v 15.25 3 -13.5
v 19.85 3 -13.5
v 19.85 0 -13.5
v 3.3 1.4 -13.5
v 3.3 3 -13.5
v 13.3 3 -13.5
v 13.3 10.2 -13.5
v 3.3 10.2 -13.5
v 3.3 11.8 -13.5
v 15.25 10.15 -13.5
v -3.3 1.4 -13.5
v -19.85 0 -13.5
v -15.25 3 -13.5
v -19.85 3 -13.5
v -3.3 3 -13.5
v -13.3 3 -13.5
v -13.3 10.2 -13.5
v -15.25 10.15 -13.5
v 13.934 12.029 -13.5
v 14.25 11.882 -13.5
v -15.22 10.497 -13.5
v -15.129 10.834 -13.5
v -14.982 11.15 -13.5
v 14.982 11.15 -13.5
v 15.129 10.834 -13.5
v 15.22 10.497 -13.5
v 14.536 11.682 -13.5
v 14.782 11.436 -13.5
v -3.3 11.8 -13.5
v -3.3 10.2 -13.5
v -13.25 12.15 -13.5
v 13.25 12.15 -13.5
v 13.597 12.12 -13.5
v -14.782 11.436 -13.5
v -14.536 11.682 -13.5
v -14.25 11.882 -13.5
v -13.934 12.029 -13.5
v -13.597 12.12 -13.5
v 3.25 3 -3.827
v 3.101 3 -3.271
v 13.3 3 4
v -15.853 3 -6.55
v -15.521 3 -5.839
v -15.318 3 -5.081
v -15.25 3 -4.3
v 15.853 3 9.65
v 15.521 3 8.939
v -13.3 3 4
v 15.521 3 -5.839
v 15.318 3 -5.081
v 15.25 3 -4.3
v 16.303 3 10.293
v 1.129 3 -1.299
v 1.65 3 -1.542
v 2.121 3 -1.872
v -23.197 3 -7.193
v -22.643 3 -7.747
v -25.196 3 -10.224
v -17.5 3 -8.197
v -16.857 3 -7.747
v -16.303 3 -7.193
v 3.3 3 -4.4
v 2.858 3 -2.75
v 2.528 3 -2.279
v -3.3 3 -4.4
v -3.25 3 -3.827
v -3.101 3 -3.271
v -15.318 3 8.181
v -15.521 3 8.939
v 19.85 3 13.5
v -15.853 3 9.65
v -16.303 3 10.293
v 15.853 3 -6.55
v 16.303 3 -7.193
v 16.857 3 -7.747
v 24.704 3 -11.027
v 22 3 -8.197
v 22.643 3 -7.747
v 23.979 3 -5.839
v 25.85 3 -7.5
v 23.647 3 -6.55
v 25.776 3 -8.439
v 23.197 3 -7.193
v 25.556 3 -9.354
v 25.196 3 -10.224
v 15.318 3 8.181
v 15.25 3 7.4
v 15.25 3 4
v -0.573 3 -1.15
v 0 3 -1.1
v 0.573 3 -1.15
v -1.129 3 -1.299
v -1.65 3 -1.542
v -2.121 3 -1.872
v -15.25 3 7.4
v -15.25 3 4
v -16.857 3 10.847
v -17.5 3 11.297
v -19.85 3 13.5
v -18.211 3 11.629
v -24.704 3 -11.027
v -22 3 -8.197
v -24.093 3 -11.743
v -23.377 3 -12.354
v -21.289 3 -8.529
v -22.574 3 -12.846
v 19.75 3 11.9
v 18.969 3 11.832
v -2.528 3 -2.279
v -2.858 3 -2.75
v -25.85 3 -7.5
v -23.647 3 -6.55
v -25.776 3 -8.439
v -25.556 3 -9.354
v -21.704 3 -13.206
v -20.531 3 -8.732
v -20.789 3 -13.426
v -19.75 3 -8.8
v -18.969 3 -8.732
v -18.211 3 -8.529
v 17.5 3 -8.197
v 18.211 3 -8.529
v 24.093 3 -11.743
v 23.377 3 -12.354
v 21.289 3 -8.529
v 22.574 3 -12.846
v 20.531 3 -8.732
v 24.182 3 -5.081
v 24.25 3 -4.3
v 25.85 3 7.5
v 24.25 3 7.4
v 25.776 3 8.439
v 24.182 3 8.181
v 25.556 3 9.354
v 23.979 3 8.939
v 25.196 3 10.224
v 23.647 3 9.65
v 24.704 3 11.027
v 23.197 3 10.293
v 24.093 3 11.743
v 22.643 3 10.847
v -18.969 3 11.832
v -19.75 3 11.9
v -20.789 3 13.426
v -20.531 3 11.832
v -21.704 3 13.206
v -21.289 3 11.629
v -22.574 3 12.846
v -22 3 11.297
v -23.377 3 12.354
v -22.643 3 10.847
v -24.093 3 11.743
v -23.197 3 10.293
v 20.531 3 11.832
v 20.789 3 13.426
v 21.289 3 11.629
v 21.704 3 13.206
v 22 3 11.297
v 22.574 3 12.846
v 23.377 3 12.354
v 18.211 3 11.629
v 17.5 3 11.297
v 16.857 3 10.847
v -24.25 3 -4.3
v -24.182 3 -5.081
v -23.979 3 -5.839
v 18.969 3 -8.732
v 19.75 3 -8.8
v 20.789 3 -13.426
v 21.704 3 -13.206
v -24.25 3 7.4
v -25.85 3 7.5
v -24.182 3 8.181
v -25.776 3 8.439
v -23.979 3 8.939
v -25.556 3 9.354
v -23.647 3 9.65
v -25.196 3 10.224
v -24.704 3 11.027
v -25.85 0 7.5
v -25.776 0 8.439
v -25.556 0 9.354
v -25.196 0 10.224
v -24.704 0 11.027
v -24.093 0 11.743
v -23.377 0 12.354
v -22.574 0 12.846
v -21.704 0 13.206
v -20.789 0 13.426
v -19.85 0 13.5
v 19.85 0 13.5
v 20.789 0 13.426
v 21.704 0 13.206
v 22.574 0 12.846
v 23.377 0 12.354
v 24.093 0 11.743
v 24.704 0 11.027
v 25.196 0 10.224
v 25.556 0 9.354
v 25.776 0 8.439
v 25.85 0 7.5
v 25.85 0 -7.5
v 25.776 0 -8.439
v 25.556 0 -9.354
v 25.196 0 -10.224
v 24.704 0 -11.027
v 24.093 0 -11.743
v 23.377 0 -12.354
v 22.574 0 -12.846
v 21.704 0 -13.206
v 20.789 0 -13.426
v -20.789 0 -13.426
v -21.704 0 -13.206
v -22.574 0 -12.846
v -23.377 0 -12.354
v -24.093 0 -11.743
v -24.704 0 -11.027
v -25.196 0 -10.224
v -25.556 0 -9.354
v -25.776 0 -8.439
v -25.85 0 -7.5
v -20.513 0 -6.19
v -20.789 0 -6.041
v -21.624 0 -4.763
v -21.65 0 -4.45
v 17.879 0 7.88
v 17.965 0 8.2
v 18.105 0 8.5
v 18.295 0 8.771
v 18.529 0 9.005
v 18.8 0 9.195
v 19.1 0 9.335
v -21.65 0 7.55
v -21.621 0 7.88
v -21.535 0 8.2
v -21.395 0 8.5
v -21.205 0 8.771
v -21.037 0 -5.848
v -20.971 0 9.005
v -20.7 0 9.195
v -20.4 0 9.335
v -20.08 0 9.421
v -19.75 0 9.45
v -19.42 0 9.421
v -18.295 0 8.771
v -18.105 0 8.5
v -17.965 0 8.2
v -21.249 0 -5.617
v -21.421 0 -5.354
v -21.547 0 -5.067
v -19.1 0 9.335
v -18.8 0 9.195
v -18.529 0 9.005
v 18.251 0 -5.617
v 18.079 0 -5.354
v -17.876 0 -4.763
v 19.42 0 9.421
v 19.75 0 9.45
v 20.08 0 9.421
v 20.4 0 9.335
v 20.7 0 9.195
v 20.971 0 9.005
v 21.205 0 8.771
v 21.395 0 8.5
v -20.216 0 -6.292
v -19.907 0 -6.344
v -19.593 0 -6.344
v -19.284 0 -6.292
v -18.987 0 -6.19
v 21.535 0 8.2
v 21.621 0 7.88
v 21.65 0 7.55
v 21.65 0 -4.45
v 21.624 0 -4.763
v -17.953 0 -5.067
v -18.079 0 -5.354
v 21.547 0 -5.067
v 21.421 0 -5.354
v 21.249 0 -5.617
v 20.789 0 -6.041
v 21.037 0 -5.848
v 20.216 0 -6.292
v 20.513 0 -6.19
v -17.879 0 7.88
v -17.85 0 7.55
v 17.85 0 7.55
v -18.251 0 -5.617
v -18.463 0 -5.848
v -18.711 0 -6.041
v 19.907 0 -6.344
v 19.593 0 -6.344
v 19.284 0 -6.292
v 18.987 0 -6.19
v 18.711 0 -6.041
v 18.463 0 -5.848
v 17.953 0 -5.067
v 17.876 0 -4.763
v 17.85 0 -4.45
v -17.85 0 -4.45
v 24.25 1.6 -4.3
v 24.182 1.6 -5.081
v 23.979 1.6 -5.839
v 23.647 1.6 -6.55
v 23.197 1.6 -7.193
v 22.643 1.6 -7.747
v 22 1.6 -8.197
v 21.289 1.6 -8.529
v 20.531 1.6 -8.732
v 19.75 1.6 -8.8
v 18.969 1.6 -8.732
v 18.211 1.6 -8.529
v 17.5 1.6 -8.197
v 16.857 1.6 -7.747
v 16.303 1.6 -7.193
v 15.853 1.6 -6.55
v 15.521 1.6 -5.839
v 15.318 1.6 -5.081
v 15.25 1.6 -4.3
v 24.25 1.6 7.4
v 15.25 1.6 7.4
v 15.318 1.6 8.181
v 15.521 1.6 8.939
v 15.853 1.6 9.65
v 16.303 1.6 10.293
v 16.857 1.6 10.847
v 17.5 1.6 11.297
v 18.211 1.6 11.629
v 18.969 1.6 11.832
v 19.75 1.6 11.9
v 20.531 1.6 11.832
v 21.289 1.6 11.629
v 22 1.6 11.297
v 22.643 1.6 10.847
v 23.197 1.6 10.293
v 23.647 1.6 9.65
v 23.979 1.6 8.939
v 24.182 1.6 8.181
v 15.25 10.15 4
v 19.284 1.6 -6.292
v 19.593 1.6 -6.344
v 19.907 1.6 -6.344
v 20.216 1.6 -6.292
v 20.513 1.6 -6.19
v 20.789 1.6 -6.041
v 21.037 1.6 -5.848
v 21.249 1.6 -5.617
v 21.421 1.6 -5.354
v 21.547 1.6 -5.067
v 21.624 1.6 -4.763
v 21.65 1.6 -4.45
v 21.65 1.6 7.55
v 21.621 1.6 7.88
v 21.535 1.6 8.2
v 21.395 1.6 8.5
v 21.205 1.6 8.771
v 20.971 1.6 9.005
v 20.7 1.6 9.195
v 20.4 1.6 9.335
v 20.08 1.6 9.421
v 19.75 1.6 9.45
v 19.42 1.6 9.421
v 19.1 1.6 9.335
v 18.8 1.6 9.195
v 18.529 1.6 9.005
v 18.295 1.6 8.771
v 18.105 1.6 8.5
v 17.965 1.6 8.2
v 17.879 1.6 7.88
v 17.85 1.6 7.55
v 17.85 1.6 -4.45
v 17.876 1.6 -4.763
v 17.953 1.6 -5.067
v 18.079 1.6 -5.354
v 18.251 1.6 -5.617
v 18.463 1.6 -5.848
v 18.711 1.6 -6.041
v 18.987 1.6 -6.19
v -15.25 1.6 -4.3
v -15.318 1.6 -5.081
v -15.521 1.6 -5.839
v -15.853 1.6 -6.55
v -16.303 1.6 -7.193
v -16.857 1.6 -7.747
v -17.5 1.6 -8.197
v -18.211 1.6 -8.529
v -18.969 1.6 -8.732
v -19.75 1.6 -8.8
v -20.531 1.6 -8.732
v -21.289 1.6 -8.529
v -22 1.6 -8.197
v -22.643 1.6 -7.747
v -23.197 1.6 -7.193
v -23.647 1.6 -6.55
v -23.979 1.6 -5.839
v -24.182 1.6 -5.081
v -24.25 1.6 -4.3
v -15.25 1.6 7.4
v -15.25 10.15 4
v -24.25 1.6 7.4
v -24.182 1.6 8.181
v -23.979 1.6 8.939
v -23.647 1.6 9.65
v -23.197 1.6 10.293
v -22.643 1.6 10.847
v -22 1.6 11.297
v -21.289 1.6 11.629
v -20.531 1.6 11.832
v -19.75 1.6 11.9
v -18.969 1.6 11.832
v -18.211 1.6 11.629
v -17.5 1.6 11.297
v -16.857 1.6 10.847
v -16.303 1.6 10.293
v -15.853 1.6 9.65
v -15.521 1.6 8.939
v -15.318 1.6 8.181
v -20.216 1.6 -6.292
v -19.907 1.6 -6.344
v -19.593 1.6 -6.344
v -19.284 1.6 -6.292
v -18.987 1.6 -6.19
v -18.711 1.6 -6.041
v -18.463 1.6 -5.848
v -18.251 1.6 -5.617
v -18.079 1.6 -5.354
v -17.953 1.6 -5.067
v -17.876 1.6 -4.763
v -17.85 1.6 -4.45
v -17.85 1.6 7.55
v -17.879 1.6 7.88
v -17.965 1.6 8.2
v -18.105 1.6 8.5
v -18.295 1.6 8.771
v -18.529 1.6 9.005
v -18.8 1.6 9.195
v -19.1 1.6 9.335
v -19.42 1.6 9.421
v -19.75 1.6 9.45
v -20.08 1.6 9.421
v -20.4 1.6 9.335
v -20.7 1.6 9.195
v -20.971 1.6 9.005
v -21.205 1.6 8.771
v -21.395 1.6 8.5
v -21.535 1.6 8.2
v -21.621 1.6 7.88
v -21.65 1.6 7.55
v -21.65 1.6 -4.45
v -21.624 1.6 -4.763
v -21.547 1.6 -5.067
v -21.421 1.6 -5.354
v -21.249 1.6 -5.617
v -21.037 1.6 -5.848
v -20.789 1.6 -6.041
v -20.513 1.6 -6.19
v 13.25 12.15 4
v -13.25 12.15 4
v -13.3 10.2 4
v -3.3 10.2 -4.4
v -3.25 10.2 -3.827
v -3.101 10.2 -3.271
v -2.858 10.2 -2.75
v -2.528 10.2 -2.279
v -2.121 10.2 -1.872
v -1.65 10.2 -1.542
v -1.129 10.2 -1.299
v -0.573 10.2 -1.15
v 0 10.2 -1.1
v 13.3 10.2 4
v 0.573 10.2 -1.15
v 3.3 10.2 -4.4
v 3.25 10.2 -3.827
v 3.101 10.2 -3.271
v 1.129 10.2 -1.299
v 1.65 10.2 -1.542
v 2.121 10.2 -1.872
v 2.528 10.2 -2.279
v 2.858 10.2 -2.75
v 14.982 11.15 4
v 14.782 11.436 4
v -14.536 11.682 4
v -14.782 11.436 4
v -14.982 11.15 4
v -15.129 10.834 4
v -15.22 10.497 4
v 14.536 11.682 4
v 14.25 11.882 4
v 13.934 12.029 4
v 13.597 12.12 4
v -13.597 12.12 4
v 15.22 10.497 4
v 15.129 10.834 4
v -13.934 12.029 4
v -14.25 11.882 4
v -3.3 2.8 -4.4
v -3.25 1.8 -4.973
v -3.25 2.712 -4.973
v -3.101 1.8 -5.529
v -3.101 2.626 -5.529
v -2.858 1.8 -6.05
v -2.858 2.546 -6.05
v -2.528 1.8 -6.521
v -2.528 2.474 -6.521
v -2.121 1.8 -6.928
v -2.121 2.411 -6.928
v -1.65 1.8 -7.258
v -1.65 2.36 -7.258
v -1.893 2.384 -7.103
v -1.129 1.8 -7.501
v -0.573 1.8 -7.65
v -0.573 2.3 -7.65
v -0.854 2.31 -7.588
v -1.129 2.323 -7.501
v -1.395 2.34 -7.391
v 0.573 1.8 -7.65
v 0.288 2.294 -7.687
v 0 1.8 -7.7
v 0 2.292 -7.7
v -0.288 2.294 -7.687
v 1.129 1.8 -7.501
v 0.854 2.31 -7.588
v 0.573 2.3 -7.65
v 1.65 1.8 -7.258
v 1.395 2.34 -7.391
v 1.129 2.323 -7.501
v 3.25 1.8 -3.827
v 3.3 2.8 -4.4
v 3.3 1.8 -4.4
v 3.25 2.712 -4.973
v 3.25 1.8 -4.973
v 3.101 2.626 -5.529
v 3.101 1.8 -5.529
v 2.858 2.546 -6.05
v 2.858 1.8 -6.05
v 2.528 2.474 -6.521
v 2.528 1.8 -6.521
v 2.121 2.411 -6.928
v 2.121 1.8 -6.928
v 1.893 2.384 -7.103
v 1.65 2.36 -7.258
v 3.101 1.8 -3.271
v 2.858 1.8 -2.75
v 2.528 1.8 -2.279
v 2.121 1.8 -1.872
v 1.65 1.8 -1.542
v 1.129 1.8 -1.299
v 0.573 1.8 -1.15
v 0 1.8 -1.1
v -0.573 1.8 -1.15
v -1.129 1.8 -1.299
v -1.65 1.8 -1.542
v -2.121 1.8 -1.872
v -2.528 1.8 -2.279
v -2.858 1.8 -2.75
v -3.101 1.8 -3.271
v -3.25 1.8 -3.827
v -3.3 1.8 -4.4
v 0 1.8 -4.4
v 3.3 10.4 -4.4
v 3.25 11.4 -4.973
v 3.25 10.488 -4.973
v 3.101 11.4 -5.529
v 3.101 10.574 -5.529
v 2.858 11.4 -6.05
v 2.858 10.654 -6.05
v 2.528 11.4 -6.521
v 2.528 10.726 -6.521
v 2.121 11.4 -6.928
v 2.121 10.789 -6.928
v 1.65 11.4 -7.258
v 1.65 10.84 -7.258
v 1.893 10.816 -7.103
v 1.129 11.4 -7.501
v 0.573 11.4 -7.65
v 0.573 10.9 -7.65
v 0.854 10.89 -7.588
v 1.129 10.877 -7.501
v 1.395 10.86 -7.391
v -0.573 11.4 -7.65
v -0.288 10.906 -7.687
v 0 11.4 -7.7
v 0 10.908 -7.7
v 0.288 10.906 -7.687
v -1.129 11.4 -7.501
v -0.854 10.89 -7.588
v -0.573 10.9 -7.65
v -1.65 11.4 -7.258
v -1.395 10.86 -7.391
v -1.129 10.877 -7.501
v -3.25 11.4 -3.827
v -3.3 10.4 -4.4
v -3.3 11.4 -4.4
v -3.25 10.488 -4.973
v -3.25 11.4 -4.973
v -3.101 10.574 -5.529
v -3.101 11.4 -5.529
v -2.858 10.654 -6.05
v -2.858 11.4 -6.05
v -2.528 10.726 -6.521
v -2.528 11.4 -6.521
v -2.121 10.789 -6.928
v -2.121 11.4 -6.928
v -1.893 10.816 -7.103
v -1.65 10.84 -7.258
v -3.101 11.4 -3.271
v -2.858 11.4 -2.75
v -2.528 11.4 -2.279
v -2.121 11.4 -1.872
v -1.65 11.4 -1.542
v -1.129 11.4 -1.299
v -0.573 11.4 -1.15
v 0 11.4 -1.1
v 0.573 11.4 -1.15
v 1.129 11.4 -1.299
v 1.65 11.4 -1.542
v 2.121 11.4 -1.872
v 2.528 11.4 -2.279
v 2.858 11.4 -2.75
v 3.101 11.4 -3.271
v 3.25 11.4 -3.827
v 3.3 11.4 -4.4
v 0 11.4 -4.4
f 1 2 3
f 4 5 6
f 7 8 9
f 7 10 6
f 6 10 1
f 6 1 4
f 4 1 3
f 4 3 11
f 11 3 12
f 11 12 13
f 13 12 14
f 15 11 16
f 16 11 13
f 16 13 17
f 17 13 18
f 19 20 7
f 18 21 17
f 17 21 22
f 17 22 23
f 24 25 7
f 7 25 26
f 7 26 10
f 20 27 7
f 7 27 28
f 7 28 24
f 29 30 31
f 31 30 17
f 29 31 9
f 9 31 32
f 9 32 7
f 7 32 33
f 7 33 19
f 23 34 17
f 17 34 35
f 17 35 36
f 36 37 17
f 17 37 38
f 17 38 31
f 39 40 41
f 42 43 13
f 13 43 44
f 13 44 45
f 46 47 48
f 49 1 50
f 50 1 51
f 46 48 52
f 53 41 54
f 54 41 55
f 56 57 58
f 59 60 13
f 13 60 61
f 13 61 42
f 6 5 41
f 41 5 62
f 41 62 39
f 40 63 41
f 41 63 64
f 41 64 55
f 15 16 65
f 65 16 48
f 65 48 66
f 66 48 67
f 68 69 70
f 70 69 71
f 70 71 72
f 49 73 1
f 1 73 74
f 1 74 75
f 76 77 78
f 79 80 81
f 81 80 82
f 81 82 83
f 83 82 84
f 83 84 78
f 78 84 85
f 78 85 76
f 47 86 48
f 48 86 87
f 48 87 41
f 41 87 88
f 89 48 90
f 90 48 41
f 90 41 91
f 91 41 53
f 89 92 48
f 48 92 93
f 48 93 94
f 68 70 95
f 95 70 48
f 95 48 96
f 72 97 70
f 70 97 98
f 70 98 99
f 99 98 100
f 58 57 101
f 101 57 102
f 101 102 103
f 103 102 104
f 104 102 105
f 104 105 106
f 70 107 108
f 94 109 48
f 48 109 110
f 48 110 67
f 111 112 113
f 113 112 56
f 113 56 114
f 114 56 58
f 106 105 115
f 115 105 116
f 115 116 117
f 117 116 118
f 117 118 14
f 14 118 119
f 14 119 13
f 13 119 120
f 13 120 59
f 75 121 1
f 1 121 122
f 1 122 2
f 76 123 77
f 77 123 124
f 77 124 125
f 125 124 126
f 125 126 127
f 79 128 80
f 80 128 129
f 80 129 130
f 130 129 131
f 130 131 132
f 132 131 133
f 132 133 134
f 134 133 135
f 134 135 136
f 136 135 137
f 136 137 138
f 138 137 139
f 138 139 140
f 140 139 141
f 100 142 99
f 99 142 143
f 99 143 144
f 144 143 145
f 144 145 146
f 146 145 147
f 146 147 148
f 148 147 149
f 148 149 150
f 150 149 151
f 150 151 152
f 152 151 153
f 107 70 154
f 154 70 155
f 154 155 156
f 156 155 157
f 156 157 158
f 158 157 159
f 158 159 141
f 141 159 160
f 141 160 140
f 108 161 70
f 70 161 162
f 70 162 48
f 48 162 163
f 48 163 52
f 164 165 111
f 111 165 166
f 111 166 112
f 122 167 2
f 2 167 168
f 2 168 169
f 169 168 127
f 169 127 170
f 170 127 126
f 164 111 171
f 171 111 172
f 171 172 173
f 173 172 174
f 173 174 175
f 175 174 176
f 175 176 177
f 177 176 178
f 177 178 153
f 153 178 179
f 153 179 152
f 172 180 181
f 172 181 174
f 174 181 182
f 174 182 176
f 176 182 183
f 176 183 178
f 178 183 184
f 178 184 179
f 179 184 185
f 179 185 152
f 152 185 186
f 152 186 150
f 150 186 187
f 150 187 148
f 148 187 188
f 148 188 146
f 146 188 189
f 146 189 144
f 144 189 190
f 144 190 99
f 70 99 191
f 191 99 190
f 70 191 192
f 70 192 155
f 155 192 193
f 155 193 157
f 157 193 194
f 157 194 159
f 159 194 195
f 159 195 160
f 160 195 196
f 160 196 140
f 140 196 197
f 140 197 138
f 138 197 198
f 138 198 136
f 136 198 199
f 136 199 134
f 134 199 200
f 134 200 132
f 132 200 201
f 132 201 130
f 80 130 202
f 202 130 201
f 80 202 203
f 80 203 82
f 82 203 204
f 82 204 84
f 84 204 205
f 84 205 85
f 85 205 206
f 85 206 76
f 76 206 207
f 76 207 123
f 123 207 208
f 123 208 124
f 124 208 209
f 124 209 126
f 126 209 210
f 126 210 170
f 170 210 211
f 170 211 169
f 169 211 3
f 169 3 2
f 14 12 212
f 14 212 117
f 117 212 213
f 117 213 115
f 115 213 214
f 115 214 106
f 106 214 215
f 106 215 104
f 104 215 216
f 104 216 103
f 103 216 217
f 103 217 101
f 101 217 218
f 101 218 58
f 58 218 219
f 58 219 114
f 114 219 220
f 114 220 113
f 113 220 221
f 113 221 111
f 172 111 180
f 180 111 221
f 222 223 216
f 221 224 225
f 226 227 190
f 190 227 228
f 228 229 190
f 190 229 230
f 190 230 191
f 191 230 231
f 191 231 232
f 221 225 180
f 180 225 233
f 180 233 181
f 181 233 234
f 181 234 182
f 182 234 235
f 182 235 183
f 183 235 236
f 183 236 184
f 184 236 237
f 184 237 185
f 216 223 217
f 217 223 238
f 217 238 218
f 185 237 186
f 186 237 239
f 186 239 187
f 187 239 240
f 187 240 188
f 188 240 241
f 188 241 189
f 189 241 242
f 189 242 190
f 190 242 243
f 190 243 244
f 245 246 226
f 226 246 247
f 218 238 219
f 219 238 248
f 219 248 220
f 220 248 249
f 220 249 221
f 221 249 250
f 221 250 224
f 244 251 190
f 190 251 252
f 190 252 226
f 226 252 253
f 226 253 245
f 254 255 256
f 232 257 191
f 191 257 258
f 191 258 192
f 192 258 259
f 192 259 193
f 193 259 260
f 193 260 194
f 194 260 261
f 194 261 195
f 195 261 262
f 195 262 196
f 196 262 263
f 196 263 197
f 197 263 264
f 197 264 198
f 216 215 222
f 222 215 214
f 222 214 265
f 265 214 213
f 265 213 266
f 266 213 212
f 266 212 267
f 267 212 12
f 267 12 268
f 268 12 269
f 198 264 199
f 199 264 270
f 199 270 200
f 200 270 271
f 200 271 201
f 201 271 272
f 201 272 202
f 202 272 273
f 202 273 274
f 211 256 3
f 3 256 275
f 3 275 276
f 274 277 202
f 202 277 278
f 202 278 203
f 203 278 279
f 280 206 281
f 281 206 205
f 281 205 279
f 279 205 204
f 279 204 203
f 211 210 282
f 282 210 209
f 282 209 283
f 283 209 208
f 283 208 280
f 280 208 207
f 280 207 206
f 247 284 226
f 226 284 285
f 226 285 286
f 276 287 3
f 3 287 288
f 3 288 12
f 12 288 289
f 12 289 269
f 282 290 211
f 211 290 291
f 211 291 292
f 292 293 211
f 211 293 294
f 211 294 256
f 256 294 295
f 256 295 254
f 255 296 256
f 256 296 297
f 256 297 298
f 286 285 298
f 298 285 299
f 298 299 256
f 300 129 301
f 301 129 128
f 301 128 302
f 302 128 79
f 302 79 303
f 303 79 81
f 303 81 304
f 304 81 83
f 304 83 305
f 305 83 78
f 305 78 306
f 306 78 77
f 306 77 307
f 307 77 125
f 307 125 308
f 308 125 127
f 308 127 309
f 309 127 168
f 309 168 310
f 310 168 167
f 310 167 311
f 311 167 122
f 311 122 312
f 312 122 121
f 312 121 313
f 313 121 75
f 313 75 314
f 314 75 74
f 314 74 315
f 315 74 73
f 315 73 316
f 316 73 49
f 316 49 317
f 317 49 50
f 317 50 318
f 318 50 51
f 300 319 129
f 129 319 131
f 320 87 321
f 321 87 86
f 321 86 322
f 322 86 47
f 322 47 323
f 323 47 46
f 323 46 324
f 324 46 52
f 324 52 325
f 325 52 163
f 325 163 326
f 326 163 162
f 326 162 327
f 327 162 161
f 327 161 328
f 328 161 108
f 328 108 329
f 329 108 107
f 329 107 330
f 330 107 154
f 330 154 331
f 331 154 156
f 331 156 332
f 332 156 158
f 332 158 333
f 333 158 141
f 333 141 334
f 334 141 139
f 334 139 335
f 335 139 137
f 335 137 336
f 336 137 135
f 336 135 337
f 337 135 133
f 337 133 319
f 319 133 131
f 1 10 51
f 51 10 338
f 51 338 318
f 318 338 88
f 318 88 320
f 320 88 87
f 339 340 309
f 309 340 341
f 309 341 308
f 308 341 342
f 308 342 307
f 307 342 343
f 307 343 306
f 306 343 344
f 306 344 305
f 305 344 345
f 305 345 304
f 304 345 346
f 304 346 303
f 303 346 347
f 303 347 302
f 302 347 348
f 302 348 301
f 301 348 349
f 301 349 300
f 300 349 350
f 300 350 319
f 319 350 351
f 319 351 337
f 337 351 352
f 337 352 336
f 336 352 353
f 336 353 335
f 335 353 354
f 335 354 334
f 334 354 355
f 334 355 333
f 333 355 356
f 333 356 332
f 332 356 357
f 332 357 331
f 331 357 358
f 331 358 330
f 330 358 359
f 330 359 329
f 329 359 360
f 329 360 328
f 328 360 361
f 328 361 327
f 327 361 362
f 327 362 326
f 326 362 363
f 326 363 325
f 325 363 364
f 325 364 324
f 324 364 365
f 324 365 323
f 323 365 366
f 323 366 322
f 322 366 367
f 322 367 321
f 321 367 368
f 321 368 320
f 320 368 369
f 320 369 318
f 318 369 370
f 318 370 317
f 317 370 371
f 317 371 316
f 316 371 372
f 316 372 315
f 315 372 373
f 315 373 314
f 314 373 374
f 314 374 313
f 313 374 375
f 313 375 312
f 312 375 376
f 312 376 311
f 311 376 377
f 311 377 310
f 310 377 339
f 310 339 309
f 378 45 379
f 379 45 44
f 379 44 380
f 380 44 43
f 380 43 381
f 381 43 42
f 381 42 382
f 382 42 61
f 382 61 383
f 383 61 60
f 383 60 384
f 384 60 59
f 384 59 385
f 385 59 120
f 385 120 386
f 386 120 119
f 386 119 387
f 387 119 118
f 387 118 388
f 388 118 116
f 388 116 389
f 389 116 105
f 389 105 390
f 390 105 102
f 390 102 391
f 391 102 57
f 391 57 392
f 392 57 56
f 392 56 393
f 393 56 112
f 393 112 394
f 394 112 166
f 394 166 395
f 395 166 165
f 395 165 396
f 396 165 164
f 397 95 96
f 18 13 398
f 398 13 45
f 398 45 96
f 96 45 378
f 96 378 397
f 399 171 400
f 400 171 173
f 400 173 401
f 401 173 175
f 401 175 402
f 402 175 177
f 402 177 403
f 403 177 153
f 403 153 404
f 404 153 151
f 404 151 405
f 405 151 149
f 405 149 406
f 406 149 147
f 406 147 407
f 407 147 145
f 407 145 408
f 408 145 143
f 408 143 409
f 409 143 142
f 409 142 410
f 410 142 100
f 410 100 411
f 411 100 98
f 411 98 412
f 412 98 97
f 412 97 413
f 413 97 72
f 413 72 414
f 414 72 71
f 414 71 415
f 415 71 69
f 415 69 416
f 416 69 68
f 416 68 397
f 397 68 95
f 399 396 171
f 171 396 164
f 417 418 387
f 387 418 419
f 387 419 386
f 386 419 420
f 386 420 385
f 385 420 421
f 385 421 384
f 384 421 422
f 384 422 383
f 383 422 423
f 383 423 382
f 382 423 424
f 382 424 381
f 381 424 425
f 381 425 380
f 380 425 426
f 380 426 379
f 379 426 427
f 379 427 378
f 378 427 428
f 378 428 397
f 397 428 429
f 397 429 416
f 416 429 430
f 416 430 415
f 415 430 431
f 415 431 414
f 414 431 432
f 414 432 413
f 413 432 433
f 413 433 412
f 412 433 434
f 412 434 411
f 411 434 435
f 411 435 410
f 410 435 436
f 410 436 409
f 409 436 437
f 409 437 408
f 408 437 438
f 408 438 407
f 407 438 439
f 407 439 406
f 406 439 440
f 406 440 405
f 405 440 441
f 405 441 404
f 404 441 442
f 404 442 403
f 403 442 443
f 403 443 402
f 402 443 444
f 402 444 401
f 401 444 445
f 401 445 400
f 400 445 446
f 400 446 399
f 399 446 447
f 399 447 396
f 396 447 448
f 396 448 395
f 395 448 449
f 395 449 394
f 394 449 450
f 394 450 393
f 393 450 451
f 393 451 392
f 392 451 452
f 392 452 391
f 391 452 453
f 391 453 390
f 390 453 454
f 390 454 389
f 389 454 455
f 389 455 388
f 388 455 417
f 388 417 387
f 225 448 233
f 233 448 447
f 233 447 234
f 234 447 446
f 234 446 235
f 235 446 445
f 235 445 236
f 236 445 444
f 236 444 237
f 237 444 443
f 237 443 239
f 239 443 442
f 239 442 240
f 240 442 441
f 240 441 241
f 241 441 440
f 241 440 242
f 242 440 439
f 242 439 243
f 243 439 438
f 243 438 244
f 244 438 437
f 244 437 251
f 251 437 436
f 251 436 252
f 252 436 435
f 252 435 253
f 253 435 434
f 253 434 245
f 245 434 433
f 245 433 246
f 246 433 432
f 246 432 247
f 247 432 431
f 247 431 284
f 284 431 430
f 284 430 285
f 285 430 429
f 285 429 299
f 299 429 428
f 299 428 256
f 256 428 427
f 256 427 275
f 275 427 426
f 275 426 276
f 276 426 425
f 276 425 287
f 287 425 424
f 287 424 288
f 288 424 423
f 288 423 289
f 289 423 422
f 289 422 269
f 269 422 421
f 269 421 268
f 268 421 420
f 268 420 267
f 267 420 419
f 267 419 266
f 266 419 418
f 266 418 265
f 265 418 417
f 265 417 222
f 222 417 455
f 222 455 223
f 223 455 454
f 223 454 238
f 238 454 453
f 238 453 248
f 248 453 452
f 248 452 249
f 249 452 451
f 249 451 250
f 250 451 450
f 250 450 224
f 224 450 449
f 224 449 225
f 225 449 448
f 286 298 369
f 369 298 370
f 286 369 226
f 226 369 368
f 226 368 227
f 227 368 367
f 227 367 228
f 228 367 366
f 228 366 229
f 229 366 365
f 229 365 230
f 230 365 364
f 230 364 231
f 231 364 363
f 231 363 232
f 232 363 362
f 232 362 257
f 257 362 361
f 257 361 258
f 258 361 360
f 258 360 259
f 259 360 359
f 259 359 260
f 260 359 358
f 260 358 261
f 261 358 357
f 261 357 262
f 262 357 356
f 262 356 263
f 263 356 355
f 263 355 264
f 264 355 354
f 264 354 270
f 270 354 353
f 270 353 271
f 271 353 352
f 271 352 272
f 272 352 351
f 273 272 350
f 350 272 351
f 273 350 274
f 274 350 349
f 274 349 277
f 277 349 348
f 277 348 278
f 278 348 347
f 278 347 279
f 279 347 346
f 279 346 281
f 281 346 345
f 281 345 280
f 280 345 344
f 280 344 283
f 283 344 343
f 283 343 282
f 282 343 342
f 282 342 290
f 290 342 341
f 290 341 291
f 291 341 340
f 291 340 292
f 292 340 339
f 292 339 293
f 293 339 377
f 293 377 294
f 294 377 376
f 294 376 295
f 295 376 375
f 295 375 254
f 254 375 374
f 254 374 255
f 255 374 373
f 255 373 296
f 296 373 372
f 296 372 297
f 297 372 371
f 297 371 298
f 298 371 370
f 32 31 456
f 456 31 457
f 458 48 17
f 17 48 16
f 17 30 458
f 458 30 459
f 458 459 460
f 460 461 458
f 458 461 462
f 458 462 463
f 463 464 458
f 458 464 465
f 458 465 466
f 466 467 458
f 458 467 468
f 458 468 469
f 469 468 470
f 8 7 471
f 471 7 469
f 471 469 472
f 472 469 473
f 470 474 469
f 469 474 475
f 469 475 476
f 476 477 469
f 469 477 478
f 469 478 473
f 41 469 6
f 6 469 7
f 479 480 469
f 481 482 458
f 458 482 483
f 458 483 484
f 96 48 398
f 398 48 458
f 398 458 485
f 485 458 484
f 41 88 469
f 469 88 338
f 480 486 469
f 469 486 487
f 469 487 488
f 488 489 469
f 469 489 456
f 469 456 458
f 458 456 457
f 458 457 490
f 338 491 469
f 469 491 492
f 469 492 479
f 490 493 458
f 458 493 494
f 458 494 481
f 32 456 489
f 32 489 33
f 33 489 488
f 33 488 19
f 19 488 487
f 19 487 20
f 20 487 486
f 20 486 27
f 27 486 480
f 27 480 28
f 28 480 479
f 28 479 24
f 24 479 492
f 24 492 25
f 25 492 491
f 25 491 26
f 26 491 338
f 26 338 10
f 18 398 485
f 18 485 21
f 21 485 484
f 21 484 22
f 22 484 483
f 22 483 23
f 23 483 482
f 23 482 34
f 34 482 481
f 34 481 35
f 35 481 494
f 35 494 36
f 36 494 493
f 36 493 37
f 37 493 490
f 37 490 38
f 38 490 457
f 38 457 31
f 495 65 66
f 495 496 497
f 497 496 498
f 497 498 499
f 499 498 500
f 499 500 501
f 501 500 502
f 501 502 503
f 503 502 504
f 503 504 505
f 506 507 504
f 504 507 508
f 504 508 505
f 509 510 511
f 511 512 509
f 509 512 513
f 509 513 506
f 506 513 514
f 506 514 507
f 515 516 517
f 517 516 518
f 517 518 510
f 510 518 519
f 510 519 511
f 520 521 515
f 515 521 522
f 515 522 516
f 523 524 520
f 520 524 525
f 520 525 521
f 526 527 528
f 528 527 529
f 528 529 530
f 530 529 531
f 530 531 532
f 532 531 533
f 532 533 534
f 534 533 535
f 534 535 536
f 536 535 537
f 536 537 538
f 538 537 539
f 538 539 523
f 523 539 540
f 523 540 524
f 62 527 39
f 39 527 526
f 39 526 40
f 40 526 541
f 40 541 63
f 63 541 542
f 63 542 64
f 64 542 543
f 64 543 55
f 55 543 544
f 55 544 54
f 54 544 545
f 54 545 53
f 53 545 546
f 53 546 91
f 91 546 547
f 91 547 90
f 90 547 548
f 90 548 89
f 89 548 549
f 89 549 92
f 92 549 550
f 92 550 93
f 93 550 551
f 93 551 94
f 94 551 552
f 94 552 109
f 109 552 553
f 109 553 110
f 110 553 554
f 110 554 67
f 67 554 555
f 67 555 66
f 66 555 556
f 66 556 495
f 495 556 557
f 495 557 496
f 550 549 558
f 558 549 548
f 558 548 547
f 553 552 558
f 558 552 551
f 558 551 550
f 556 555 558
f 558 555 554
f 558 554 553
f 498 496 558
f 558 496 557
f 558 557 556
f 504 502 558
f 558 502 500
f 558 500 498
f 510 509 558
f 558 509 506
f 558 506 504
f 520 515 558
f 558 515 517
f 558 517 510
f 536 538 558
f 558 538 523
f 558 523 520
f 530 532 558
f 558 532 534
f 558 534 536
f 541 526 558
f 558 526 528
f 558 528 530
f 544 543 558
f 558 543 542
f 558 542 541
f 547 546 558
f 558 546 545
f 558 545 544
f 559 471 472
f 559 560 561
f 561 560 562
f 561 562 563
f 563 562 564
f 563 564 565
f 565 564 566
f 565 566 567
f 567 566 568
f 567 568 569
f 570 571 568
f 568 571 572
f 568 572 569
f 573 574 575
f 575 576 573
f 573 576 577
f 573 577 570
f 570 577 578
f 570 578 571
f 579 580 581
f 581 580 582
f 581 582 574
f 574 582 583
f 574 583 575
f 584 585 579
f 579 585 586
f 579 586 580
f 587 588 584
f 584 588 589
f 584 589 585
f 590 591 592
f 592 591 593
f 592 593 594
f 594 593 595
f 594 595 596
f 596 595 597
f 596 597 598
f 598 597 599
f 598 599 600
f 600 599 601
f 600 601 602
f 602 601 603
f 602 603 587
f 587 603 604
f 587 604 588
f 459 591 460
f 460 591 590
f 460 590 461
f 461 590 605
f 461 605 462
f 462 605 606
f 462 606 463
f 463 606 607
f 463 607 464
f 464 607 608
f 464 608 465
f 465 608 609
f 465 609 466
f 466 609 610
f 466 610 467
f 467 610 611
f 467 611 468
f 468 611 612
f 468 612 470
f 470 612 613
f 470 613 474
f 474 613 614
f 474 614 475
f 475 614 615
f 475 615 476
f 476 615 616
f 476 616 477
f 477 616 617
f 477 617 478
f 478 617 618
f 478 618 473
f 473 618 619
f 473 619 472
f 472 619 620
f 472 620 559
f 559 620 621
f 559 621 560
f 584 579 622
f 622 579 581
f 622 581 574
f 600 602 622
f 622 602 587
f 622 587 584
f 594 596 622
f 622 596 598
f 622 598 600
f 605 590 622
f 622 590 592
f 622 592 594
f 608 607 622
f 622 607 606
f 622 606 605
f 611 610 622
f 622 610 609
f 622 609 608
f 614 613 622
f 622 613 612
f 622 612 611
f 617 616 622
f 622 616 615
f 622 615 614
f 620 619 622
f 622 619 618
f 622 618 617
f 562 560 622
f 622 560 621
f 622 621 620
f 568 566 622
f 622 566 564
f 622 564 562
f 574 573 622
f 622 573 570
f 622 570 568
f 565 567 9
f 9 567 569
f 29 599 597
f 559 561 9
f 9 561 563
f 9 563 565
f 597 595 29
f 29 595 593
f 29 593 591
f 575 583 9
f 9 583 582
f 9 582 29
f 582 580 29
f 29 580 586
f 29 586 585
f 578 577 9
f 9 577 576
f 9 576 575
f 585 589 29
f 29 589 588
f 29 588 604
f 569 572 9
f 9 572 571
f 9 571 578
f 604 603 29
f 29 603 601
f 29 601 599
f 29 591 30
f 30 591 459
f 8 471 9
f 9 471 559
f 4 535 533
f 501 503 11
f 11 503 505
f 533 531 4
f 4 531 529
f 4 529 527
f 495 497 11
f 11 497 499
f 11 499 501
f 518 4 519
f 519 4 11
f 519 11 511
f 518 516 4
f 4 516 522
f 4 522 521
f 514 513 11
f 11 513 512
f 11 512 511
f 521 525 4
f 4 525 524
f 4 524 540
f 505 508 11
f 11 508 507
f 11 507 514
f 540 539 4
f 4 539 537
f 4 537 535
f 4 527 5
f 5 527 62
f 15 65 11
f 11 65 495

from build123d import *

# Parameters (mm, degrees)
BOSS_EXTRUDE1_DEPTH = 3
CUT_EXTRUDE1_DEPTH  = 1.4
CUT_EXTRUDE2_DEPTH  = 3
BOSS_EXTRUDE2_DEPTH = 17.5
FILLET1_R           = 2
SKETCH8_R           = 3.3
CUT_EXTRUDE3_DEPTH  = 1.2
CUT_EXTRUDE4_START  = -1.2
SKETCH9_R           = 3.3
CUT_EXTRUDE4_DEPTH  = 1.2


with BuildPart() as part:
    # Sketch1 → Boss-Extrude1 (new body)
    with BuildSketch(Plane(origin=(0, 0, 0), x_dir=(1, 0, 0), z_dir=(0, 1, 0))):
        with BuildLine():
            Line((-19.85, -13.5), (19.85, -13.5))
            ThreePointArc((19.85, -13.5), (24.092640687, -11.742640687), (25.85, -7.5))
            Line((25.85, -7.5), (25.85, 7.5))
            ThreePointArc((25.85, 7.5), (24.092640687, 11.742640687), (19.85, 13.5))
            Line((19.85, 13.5), (-19.85, 13.5))
            ThreePointArc((-19.85, 13.5), (-24.092640687, 11.742640687), (-25.85, 7.5))
            Line((-25.85, 7.5), (-25.85, -7.5))
            ThreePointArc((-25.85, -7.5), (-24.092640687, -11.742640687), (-19.85, -13.5))
        make_face()
    extrude(amount=BOSS_EXTRUDE1_DEPTH)

    # Sketch2 → Cut-Extrude1 (cut)
    with BuildSketch(Plane(origin=(0, 3, 0), x_dir=(1, 0, 0), z_dir=(0, 1, 0))):
        with BuildLine():
            Line((-24.25, 4.3), (-24.25, -7.4))
            ThreePointArc((-24.25, -7.4), (-19.75, -11.9), (-15.25, -7.4))
            Line((-15.25, -7.4), (-15.25, 4.3))
            ThreePointArc((-15.25, 4.3), (-19.75, 8.8), (-24.25, 4.3))
        make_face()
        with BuildLine():
            Line((24.25, 4.3), (24.25, -7.4))
            ThreePointArc((24.25, -7.4), (19.75, -11.9), (15.25, -7.4))
            Line((15.25, -7.4), (15.25, 4.3))
            ThreePointArc((15.25, 4.3), (19.75, 8.8), (24.25, 4.3))
        make_face()
    extrude(amount=-CUT_EXTRUDE1_DEPTH, mode=Mode.SUBTRACT)

    # Sketch4 → Cut-Extrude2 (cut)
    with BuildSketch(Plane(origin=(0, 3, 0), x_dir=(1, 0, 0), z_dir=(0, 1, 0))):
        with BuildLine():
            Line((-17.85, 4.45), (-17.85, -7.55))
            ThreePointArc((-17.85, -7.55), (-19.75, -9.45), (-21.65, -7.55))
            Line((-21.65, -7.55), (-21.65, 4.45))
            ThreePointArc((-21.65, 4.45), (-19.75, 6.35), (-17.85, 4.45))
        make_face()
        with BuildLine():
            Line((17.85, 4.45), (17.85, -7.55))
            ThreePointArc((17.85, -7.55), (19.75, -9.45), (21.65, -7.55))
            Line((21.65, -7.55), (21.65, 4.45))
            ThreePointArc((21.65, 4.45), (19.75, 6.35), (17.85, 4.45))
        make_face()
    extrude(amount=-CUT_EXTRUDE2_DEPTH, mode=Mode.SUBTRACT)

    # Sketch5 → Boss-Extrude2 (add)
    with BuildSketch(Plane(origin=(0, 0, -13.5), x_dir=(-1, 0, 0), z_dir=(0, 0, -1))):
        Polygon((-13.3, 3), (-13.3, 10.2), (13.3, 10.2), (13.3, 3), (15.25, 3), (15.25, 12.15), (-15.25, 12.15), (-15.25, 3), align=None)
    extrude(amount=-BOSS_EXTRUDE2_DEPTH)

    # Fillet1
    fillet1_edges = [part.edges().sort_by_distance(p)[0] for p in [
        (15.25, 12.15, -4.75),
        (-15.25, 12.15, -4.75),
    ]]
    fillet(fillet1_edges, radius=FILLET1_R)

    # Sketch8 → Cut-Extrude3 (cut)
    with BuildSketch(Plane(origin=(0, 3, 0), x_dir=(1, 0, 0), z_dir=(0, 1, 0))):
        with Locations(Location((0, 4.4, 0), (0, 0, 270))):
            Circle(SKETCH8_R)
    extrude(amount=-CUT_EXTRUDE3_DEPTH, mode=Mode.SUBTRACT)

    # Sketch9 → Cut-Extrude4 (cut)
    with BuildSketch(Plane.XZ.offset(-10.2).offset(CUT_EXTRUDE4_START)):
        with Locations(Location((0, -4.4, 0), (0, 0, 90))):
            Circle(SKETCH9_R)
    extrude(amount=CUT_EXTRUDE4_DEPTH, mode=Mode.SUBTRACT)

    # Sketch11 → Cut-Loft4 section 0
    with BuildSketch(Plane(origin=(0, 0, -13.5), x_dir=(-1, 0, 0), z_dir=(0, 0, -1))):
        with BuildLine():
            Line((-3.3, 11.8), (3.3, 11.8))
            Line((3.3, 11.8), (3.3, 10.2))
            Line((3.3, 10.2), (-3.3, 10.2))
            Line((-3.3, 10.2), (-3.3, 11.8))
        make_face()
    # Sketch12 → Cut-Loft4 section 1
    with BuildSketch(Plane.XY.offset(-4.4)):
        with BuildLine():
            Line((-3.3, 10.2), (3.3, 10.2))
            Line((3.3, 10.2), (3.3, 10.4))
            Line((3.3, 10.4), (-3.3, 10.4))
            Line((-3.3, 10.4), (-3.3, 10.2))
        make_face()
    loft(mode=Mode.SUBTRACT)

    # Sketch11<110> → Cut-Loft7 section 0
    with BuildSketch(Plane(origin=(0, 0, -13.5), x_dir=(-1, 0, 0), z_dir=(0, 0, -1))):
        with BuildLine():
            Line((-3.3, 3), (3.3, 3))
            Line((3.3, 3), (3.3, 1.4))
            Line((3.3, 1.4), (-3.3, 1.4))
            Line((-3.3, 1.4), (-3.3, 3))
        make_face()
    # Sketch12<5> → Cut-Loft7 section 1
    with BuildSketch(Plane.XY.offset(-4.4)):
        with BuildLine():
            Line((-3.3, 3), (3.3, 3))
            Line((3.3, 3), (3.3, 2.8))
            Line((3.3, 2.8), (-3.3, 2.8))
            Line((-3.3, 2.8), (-3.3, 3))
        make_face()
    loft(mode=Mode.SUBTRACT)


solid = part.part
